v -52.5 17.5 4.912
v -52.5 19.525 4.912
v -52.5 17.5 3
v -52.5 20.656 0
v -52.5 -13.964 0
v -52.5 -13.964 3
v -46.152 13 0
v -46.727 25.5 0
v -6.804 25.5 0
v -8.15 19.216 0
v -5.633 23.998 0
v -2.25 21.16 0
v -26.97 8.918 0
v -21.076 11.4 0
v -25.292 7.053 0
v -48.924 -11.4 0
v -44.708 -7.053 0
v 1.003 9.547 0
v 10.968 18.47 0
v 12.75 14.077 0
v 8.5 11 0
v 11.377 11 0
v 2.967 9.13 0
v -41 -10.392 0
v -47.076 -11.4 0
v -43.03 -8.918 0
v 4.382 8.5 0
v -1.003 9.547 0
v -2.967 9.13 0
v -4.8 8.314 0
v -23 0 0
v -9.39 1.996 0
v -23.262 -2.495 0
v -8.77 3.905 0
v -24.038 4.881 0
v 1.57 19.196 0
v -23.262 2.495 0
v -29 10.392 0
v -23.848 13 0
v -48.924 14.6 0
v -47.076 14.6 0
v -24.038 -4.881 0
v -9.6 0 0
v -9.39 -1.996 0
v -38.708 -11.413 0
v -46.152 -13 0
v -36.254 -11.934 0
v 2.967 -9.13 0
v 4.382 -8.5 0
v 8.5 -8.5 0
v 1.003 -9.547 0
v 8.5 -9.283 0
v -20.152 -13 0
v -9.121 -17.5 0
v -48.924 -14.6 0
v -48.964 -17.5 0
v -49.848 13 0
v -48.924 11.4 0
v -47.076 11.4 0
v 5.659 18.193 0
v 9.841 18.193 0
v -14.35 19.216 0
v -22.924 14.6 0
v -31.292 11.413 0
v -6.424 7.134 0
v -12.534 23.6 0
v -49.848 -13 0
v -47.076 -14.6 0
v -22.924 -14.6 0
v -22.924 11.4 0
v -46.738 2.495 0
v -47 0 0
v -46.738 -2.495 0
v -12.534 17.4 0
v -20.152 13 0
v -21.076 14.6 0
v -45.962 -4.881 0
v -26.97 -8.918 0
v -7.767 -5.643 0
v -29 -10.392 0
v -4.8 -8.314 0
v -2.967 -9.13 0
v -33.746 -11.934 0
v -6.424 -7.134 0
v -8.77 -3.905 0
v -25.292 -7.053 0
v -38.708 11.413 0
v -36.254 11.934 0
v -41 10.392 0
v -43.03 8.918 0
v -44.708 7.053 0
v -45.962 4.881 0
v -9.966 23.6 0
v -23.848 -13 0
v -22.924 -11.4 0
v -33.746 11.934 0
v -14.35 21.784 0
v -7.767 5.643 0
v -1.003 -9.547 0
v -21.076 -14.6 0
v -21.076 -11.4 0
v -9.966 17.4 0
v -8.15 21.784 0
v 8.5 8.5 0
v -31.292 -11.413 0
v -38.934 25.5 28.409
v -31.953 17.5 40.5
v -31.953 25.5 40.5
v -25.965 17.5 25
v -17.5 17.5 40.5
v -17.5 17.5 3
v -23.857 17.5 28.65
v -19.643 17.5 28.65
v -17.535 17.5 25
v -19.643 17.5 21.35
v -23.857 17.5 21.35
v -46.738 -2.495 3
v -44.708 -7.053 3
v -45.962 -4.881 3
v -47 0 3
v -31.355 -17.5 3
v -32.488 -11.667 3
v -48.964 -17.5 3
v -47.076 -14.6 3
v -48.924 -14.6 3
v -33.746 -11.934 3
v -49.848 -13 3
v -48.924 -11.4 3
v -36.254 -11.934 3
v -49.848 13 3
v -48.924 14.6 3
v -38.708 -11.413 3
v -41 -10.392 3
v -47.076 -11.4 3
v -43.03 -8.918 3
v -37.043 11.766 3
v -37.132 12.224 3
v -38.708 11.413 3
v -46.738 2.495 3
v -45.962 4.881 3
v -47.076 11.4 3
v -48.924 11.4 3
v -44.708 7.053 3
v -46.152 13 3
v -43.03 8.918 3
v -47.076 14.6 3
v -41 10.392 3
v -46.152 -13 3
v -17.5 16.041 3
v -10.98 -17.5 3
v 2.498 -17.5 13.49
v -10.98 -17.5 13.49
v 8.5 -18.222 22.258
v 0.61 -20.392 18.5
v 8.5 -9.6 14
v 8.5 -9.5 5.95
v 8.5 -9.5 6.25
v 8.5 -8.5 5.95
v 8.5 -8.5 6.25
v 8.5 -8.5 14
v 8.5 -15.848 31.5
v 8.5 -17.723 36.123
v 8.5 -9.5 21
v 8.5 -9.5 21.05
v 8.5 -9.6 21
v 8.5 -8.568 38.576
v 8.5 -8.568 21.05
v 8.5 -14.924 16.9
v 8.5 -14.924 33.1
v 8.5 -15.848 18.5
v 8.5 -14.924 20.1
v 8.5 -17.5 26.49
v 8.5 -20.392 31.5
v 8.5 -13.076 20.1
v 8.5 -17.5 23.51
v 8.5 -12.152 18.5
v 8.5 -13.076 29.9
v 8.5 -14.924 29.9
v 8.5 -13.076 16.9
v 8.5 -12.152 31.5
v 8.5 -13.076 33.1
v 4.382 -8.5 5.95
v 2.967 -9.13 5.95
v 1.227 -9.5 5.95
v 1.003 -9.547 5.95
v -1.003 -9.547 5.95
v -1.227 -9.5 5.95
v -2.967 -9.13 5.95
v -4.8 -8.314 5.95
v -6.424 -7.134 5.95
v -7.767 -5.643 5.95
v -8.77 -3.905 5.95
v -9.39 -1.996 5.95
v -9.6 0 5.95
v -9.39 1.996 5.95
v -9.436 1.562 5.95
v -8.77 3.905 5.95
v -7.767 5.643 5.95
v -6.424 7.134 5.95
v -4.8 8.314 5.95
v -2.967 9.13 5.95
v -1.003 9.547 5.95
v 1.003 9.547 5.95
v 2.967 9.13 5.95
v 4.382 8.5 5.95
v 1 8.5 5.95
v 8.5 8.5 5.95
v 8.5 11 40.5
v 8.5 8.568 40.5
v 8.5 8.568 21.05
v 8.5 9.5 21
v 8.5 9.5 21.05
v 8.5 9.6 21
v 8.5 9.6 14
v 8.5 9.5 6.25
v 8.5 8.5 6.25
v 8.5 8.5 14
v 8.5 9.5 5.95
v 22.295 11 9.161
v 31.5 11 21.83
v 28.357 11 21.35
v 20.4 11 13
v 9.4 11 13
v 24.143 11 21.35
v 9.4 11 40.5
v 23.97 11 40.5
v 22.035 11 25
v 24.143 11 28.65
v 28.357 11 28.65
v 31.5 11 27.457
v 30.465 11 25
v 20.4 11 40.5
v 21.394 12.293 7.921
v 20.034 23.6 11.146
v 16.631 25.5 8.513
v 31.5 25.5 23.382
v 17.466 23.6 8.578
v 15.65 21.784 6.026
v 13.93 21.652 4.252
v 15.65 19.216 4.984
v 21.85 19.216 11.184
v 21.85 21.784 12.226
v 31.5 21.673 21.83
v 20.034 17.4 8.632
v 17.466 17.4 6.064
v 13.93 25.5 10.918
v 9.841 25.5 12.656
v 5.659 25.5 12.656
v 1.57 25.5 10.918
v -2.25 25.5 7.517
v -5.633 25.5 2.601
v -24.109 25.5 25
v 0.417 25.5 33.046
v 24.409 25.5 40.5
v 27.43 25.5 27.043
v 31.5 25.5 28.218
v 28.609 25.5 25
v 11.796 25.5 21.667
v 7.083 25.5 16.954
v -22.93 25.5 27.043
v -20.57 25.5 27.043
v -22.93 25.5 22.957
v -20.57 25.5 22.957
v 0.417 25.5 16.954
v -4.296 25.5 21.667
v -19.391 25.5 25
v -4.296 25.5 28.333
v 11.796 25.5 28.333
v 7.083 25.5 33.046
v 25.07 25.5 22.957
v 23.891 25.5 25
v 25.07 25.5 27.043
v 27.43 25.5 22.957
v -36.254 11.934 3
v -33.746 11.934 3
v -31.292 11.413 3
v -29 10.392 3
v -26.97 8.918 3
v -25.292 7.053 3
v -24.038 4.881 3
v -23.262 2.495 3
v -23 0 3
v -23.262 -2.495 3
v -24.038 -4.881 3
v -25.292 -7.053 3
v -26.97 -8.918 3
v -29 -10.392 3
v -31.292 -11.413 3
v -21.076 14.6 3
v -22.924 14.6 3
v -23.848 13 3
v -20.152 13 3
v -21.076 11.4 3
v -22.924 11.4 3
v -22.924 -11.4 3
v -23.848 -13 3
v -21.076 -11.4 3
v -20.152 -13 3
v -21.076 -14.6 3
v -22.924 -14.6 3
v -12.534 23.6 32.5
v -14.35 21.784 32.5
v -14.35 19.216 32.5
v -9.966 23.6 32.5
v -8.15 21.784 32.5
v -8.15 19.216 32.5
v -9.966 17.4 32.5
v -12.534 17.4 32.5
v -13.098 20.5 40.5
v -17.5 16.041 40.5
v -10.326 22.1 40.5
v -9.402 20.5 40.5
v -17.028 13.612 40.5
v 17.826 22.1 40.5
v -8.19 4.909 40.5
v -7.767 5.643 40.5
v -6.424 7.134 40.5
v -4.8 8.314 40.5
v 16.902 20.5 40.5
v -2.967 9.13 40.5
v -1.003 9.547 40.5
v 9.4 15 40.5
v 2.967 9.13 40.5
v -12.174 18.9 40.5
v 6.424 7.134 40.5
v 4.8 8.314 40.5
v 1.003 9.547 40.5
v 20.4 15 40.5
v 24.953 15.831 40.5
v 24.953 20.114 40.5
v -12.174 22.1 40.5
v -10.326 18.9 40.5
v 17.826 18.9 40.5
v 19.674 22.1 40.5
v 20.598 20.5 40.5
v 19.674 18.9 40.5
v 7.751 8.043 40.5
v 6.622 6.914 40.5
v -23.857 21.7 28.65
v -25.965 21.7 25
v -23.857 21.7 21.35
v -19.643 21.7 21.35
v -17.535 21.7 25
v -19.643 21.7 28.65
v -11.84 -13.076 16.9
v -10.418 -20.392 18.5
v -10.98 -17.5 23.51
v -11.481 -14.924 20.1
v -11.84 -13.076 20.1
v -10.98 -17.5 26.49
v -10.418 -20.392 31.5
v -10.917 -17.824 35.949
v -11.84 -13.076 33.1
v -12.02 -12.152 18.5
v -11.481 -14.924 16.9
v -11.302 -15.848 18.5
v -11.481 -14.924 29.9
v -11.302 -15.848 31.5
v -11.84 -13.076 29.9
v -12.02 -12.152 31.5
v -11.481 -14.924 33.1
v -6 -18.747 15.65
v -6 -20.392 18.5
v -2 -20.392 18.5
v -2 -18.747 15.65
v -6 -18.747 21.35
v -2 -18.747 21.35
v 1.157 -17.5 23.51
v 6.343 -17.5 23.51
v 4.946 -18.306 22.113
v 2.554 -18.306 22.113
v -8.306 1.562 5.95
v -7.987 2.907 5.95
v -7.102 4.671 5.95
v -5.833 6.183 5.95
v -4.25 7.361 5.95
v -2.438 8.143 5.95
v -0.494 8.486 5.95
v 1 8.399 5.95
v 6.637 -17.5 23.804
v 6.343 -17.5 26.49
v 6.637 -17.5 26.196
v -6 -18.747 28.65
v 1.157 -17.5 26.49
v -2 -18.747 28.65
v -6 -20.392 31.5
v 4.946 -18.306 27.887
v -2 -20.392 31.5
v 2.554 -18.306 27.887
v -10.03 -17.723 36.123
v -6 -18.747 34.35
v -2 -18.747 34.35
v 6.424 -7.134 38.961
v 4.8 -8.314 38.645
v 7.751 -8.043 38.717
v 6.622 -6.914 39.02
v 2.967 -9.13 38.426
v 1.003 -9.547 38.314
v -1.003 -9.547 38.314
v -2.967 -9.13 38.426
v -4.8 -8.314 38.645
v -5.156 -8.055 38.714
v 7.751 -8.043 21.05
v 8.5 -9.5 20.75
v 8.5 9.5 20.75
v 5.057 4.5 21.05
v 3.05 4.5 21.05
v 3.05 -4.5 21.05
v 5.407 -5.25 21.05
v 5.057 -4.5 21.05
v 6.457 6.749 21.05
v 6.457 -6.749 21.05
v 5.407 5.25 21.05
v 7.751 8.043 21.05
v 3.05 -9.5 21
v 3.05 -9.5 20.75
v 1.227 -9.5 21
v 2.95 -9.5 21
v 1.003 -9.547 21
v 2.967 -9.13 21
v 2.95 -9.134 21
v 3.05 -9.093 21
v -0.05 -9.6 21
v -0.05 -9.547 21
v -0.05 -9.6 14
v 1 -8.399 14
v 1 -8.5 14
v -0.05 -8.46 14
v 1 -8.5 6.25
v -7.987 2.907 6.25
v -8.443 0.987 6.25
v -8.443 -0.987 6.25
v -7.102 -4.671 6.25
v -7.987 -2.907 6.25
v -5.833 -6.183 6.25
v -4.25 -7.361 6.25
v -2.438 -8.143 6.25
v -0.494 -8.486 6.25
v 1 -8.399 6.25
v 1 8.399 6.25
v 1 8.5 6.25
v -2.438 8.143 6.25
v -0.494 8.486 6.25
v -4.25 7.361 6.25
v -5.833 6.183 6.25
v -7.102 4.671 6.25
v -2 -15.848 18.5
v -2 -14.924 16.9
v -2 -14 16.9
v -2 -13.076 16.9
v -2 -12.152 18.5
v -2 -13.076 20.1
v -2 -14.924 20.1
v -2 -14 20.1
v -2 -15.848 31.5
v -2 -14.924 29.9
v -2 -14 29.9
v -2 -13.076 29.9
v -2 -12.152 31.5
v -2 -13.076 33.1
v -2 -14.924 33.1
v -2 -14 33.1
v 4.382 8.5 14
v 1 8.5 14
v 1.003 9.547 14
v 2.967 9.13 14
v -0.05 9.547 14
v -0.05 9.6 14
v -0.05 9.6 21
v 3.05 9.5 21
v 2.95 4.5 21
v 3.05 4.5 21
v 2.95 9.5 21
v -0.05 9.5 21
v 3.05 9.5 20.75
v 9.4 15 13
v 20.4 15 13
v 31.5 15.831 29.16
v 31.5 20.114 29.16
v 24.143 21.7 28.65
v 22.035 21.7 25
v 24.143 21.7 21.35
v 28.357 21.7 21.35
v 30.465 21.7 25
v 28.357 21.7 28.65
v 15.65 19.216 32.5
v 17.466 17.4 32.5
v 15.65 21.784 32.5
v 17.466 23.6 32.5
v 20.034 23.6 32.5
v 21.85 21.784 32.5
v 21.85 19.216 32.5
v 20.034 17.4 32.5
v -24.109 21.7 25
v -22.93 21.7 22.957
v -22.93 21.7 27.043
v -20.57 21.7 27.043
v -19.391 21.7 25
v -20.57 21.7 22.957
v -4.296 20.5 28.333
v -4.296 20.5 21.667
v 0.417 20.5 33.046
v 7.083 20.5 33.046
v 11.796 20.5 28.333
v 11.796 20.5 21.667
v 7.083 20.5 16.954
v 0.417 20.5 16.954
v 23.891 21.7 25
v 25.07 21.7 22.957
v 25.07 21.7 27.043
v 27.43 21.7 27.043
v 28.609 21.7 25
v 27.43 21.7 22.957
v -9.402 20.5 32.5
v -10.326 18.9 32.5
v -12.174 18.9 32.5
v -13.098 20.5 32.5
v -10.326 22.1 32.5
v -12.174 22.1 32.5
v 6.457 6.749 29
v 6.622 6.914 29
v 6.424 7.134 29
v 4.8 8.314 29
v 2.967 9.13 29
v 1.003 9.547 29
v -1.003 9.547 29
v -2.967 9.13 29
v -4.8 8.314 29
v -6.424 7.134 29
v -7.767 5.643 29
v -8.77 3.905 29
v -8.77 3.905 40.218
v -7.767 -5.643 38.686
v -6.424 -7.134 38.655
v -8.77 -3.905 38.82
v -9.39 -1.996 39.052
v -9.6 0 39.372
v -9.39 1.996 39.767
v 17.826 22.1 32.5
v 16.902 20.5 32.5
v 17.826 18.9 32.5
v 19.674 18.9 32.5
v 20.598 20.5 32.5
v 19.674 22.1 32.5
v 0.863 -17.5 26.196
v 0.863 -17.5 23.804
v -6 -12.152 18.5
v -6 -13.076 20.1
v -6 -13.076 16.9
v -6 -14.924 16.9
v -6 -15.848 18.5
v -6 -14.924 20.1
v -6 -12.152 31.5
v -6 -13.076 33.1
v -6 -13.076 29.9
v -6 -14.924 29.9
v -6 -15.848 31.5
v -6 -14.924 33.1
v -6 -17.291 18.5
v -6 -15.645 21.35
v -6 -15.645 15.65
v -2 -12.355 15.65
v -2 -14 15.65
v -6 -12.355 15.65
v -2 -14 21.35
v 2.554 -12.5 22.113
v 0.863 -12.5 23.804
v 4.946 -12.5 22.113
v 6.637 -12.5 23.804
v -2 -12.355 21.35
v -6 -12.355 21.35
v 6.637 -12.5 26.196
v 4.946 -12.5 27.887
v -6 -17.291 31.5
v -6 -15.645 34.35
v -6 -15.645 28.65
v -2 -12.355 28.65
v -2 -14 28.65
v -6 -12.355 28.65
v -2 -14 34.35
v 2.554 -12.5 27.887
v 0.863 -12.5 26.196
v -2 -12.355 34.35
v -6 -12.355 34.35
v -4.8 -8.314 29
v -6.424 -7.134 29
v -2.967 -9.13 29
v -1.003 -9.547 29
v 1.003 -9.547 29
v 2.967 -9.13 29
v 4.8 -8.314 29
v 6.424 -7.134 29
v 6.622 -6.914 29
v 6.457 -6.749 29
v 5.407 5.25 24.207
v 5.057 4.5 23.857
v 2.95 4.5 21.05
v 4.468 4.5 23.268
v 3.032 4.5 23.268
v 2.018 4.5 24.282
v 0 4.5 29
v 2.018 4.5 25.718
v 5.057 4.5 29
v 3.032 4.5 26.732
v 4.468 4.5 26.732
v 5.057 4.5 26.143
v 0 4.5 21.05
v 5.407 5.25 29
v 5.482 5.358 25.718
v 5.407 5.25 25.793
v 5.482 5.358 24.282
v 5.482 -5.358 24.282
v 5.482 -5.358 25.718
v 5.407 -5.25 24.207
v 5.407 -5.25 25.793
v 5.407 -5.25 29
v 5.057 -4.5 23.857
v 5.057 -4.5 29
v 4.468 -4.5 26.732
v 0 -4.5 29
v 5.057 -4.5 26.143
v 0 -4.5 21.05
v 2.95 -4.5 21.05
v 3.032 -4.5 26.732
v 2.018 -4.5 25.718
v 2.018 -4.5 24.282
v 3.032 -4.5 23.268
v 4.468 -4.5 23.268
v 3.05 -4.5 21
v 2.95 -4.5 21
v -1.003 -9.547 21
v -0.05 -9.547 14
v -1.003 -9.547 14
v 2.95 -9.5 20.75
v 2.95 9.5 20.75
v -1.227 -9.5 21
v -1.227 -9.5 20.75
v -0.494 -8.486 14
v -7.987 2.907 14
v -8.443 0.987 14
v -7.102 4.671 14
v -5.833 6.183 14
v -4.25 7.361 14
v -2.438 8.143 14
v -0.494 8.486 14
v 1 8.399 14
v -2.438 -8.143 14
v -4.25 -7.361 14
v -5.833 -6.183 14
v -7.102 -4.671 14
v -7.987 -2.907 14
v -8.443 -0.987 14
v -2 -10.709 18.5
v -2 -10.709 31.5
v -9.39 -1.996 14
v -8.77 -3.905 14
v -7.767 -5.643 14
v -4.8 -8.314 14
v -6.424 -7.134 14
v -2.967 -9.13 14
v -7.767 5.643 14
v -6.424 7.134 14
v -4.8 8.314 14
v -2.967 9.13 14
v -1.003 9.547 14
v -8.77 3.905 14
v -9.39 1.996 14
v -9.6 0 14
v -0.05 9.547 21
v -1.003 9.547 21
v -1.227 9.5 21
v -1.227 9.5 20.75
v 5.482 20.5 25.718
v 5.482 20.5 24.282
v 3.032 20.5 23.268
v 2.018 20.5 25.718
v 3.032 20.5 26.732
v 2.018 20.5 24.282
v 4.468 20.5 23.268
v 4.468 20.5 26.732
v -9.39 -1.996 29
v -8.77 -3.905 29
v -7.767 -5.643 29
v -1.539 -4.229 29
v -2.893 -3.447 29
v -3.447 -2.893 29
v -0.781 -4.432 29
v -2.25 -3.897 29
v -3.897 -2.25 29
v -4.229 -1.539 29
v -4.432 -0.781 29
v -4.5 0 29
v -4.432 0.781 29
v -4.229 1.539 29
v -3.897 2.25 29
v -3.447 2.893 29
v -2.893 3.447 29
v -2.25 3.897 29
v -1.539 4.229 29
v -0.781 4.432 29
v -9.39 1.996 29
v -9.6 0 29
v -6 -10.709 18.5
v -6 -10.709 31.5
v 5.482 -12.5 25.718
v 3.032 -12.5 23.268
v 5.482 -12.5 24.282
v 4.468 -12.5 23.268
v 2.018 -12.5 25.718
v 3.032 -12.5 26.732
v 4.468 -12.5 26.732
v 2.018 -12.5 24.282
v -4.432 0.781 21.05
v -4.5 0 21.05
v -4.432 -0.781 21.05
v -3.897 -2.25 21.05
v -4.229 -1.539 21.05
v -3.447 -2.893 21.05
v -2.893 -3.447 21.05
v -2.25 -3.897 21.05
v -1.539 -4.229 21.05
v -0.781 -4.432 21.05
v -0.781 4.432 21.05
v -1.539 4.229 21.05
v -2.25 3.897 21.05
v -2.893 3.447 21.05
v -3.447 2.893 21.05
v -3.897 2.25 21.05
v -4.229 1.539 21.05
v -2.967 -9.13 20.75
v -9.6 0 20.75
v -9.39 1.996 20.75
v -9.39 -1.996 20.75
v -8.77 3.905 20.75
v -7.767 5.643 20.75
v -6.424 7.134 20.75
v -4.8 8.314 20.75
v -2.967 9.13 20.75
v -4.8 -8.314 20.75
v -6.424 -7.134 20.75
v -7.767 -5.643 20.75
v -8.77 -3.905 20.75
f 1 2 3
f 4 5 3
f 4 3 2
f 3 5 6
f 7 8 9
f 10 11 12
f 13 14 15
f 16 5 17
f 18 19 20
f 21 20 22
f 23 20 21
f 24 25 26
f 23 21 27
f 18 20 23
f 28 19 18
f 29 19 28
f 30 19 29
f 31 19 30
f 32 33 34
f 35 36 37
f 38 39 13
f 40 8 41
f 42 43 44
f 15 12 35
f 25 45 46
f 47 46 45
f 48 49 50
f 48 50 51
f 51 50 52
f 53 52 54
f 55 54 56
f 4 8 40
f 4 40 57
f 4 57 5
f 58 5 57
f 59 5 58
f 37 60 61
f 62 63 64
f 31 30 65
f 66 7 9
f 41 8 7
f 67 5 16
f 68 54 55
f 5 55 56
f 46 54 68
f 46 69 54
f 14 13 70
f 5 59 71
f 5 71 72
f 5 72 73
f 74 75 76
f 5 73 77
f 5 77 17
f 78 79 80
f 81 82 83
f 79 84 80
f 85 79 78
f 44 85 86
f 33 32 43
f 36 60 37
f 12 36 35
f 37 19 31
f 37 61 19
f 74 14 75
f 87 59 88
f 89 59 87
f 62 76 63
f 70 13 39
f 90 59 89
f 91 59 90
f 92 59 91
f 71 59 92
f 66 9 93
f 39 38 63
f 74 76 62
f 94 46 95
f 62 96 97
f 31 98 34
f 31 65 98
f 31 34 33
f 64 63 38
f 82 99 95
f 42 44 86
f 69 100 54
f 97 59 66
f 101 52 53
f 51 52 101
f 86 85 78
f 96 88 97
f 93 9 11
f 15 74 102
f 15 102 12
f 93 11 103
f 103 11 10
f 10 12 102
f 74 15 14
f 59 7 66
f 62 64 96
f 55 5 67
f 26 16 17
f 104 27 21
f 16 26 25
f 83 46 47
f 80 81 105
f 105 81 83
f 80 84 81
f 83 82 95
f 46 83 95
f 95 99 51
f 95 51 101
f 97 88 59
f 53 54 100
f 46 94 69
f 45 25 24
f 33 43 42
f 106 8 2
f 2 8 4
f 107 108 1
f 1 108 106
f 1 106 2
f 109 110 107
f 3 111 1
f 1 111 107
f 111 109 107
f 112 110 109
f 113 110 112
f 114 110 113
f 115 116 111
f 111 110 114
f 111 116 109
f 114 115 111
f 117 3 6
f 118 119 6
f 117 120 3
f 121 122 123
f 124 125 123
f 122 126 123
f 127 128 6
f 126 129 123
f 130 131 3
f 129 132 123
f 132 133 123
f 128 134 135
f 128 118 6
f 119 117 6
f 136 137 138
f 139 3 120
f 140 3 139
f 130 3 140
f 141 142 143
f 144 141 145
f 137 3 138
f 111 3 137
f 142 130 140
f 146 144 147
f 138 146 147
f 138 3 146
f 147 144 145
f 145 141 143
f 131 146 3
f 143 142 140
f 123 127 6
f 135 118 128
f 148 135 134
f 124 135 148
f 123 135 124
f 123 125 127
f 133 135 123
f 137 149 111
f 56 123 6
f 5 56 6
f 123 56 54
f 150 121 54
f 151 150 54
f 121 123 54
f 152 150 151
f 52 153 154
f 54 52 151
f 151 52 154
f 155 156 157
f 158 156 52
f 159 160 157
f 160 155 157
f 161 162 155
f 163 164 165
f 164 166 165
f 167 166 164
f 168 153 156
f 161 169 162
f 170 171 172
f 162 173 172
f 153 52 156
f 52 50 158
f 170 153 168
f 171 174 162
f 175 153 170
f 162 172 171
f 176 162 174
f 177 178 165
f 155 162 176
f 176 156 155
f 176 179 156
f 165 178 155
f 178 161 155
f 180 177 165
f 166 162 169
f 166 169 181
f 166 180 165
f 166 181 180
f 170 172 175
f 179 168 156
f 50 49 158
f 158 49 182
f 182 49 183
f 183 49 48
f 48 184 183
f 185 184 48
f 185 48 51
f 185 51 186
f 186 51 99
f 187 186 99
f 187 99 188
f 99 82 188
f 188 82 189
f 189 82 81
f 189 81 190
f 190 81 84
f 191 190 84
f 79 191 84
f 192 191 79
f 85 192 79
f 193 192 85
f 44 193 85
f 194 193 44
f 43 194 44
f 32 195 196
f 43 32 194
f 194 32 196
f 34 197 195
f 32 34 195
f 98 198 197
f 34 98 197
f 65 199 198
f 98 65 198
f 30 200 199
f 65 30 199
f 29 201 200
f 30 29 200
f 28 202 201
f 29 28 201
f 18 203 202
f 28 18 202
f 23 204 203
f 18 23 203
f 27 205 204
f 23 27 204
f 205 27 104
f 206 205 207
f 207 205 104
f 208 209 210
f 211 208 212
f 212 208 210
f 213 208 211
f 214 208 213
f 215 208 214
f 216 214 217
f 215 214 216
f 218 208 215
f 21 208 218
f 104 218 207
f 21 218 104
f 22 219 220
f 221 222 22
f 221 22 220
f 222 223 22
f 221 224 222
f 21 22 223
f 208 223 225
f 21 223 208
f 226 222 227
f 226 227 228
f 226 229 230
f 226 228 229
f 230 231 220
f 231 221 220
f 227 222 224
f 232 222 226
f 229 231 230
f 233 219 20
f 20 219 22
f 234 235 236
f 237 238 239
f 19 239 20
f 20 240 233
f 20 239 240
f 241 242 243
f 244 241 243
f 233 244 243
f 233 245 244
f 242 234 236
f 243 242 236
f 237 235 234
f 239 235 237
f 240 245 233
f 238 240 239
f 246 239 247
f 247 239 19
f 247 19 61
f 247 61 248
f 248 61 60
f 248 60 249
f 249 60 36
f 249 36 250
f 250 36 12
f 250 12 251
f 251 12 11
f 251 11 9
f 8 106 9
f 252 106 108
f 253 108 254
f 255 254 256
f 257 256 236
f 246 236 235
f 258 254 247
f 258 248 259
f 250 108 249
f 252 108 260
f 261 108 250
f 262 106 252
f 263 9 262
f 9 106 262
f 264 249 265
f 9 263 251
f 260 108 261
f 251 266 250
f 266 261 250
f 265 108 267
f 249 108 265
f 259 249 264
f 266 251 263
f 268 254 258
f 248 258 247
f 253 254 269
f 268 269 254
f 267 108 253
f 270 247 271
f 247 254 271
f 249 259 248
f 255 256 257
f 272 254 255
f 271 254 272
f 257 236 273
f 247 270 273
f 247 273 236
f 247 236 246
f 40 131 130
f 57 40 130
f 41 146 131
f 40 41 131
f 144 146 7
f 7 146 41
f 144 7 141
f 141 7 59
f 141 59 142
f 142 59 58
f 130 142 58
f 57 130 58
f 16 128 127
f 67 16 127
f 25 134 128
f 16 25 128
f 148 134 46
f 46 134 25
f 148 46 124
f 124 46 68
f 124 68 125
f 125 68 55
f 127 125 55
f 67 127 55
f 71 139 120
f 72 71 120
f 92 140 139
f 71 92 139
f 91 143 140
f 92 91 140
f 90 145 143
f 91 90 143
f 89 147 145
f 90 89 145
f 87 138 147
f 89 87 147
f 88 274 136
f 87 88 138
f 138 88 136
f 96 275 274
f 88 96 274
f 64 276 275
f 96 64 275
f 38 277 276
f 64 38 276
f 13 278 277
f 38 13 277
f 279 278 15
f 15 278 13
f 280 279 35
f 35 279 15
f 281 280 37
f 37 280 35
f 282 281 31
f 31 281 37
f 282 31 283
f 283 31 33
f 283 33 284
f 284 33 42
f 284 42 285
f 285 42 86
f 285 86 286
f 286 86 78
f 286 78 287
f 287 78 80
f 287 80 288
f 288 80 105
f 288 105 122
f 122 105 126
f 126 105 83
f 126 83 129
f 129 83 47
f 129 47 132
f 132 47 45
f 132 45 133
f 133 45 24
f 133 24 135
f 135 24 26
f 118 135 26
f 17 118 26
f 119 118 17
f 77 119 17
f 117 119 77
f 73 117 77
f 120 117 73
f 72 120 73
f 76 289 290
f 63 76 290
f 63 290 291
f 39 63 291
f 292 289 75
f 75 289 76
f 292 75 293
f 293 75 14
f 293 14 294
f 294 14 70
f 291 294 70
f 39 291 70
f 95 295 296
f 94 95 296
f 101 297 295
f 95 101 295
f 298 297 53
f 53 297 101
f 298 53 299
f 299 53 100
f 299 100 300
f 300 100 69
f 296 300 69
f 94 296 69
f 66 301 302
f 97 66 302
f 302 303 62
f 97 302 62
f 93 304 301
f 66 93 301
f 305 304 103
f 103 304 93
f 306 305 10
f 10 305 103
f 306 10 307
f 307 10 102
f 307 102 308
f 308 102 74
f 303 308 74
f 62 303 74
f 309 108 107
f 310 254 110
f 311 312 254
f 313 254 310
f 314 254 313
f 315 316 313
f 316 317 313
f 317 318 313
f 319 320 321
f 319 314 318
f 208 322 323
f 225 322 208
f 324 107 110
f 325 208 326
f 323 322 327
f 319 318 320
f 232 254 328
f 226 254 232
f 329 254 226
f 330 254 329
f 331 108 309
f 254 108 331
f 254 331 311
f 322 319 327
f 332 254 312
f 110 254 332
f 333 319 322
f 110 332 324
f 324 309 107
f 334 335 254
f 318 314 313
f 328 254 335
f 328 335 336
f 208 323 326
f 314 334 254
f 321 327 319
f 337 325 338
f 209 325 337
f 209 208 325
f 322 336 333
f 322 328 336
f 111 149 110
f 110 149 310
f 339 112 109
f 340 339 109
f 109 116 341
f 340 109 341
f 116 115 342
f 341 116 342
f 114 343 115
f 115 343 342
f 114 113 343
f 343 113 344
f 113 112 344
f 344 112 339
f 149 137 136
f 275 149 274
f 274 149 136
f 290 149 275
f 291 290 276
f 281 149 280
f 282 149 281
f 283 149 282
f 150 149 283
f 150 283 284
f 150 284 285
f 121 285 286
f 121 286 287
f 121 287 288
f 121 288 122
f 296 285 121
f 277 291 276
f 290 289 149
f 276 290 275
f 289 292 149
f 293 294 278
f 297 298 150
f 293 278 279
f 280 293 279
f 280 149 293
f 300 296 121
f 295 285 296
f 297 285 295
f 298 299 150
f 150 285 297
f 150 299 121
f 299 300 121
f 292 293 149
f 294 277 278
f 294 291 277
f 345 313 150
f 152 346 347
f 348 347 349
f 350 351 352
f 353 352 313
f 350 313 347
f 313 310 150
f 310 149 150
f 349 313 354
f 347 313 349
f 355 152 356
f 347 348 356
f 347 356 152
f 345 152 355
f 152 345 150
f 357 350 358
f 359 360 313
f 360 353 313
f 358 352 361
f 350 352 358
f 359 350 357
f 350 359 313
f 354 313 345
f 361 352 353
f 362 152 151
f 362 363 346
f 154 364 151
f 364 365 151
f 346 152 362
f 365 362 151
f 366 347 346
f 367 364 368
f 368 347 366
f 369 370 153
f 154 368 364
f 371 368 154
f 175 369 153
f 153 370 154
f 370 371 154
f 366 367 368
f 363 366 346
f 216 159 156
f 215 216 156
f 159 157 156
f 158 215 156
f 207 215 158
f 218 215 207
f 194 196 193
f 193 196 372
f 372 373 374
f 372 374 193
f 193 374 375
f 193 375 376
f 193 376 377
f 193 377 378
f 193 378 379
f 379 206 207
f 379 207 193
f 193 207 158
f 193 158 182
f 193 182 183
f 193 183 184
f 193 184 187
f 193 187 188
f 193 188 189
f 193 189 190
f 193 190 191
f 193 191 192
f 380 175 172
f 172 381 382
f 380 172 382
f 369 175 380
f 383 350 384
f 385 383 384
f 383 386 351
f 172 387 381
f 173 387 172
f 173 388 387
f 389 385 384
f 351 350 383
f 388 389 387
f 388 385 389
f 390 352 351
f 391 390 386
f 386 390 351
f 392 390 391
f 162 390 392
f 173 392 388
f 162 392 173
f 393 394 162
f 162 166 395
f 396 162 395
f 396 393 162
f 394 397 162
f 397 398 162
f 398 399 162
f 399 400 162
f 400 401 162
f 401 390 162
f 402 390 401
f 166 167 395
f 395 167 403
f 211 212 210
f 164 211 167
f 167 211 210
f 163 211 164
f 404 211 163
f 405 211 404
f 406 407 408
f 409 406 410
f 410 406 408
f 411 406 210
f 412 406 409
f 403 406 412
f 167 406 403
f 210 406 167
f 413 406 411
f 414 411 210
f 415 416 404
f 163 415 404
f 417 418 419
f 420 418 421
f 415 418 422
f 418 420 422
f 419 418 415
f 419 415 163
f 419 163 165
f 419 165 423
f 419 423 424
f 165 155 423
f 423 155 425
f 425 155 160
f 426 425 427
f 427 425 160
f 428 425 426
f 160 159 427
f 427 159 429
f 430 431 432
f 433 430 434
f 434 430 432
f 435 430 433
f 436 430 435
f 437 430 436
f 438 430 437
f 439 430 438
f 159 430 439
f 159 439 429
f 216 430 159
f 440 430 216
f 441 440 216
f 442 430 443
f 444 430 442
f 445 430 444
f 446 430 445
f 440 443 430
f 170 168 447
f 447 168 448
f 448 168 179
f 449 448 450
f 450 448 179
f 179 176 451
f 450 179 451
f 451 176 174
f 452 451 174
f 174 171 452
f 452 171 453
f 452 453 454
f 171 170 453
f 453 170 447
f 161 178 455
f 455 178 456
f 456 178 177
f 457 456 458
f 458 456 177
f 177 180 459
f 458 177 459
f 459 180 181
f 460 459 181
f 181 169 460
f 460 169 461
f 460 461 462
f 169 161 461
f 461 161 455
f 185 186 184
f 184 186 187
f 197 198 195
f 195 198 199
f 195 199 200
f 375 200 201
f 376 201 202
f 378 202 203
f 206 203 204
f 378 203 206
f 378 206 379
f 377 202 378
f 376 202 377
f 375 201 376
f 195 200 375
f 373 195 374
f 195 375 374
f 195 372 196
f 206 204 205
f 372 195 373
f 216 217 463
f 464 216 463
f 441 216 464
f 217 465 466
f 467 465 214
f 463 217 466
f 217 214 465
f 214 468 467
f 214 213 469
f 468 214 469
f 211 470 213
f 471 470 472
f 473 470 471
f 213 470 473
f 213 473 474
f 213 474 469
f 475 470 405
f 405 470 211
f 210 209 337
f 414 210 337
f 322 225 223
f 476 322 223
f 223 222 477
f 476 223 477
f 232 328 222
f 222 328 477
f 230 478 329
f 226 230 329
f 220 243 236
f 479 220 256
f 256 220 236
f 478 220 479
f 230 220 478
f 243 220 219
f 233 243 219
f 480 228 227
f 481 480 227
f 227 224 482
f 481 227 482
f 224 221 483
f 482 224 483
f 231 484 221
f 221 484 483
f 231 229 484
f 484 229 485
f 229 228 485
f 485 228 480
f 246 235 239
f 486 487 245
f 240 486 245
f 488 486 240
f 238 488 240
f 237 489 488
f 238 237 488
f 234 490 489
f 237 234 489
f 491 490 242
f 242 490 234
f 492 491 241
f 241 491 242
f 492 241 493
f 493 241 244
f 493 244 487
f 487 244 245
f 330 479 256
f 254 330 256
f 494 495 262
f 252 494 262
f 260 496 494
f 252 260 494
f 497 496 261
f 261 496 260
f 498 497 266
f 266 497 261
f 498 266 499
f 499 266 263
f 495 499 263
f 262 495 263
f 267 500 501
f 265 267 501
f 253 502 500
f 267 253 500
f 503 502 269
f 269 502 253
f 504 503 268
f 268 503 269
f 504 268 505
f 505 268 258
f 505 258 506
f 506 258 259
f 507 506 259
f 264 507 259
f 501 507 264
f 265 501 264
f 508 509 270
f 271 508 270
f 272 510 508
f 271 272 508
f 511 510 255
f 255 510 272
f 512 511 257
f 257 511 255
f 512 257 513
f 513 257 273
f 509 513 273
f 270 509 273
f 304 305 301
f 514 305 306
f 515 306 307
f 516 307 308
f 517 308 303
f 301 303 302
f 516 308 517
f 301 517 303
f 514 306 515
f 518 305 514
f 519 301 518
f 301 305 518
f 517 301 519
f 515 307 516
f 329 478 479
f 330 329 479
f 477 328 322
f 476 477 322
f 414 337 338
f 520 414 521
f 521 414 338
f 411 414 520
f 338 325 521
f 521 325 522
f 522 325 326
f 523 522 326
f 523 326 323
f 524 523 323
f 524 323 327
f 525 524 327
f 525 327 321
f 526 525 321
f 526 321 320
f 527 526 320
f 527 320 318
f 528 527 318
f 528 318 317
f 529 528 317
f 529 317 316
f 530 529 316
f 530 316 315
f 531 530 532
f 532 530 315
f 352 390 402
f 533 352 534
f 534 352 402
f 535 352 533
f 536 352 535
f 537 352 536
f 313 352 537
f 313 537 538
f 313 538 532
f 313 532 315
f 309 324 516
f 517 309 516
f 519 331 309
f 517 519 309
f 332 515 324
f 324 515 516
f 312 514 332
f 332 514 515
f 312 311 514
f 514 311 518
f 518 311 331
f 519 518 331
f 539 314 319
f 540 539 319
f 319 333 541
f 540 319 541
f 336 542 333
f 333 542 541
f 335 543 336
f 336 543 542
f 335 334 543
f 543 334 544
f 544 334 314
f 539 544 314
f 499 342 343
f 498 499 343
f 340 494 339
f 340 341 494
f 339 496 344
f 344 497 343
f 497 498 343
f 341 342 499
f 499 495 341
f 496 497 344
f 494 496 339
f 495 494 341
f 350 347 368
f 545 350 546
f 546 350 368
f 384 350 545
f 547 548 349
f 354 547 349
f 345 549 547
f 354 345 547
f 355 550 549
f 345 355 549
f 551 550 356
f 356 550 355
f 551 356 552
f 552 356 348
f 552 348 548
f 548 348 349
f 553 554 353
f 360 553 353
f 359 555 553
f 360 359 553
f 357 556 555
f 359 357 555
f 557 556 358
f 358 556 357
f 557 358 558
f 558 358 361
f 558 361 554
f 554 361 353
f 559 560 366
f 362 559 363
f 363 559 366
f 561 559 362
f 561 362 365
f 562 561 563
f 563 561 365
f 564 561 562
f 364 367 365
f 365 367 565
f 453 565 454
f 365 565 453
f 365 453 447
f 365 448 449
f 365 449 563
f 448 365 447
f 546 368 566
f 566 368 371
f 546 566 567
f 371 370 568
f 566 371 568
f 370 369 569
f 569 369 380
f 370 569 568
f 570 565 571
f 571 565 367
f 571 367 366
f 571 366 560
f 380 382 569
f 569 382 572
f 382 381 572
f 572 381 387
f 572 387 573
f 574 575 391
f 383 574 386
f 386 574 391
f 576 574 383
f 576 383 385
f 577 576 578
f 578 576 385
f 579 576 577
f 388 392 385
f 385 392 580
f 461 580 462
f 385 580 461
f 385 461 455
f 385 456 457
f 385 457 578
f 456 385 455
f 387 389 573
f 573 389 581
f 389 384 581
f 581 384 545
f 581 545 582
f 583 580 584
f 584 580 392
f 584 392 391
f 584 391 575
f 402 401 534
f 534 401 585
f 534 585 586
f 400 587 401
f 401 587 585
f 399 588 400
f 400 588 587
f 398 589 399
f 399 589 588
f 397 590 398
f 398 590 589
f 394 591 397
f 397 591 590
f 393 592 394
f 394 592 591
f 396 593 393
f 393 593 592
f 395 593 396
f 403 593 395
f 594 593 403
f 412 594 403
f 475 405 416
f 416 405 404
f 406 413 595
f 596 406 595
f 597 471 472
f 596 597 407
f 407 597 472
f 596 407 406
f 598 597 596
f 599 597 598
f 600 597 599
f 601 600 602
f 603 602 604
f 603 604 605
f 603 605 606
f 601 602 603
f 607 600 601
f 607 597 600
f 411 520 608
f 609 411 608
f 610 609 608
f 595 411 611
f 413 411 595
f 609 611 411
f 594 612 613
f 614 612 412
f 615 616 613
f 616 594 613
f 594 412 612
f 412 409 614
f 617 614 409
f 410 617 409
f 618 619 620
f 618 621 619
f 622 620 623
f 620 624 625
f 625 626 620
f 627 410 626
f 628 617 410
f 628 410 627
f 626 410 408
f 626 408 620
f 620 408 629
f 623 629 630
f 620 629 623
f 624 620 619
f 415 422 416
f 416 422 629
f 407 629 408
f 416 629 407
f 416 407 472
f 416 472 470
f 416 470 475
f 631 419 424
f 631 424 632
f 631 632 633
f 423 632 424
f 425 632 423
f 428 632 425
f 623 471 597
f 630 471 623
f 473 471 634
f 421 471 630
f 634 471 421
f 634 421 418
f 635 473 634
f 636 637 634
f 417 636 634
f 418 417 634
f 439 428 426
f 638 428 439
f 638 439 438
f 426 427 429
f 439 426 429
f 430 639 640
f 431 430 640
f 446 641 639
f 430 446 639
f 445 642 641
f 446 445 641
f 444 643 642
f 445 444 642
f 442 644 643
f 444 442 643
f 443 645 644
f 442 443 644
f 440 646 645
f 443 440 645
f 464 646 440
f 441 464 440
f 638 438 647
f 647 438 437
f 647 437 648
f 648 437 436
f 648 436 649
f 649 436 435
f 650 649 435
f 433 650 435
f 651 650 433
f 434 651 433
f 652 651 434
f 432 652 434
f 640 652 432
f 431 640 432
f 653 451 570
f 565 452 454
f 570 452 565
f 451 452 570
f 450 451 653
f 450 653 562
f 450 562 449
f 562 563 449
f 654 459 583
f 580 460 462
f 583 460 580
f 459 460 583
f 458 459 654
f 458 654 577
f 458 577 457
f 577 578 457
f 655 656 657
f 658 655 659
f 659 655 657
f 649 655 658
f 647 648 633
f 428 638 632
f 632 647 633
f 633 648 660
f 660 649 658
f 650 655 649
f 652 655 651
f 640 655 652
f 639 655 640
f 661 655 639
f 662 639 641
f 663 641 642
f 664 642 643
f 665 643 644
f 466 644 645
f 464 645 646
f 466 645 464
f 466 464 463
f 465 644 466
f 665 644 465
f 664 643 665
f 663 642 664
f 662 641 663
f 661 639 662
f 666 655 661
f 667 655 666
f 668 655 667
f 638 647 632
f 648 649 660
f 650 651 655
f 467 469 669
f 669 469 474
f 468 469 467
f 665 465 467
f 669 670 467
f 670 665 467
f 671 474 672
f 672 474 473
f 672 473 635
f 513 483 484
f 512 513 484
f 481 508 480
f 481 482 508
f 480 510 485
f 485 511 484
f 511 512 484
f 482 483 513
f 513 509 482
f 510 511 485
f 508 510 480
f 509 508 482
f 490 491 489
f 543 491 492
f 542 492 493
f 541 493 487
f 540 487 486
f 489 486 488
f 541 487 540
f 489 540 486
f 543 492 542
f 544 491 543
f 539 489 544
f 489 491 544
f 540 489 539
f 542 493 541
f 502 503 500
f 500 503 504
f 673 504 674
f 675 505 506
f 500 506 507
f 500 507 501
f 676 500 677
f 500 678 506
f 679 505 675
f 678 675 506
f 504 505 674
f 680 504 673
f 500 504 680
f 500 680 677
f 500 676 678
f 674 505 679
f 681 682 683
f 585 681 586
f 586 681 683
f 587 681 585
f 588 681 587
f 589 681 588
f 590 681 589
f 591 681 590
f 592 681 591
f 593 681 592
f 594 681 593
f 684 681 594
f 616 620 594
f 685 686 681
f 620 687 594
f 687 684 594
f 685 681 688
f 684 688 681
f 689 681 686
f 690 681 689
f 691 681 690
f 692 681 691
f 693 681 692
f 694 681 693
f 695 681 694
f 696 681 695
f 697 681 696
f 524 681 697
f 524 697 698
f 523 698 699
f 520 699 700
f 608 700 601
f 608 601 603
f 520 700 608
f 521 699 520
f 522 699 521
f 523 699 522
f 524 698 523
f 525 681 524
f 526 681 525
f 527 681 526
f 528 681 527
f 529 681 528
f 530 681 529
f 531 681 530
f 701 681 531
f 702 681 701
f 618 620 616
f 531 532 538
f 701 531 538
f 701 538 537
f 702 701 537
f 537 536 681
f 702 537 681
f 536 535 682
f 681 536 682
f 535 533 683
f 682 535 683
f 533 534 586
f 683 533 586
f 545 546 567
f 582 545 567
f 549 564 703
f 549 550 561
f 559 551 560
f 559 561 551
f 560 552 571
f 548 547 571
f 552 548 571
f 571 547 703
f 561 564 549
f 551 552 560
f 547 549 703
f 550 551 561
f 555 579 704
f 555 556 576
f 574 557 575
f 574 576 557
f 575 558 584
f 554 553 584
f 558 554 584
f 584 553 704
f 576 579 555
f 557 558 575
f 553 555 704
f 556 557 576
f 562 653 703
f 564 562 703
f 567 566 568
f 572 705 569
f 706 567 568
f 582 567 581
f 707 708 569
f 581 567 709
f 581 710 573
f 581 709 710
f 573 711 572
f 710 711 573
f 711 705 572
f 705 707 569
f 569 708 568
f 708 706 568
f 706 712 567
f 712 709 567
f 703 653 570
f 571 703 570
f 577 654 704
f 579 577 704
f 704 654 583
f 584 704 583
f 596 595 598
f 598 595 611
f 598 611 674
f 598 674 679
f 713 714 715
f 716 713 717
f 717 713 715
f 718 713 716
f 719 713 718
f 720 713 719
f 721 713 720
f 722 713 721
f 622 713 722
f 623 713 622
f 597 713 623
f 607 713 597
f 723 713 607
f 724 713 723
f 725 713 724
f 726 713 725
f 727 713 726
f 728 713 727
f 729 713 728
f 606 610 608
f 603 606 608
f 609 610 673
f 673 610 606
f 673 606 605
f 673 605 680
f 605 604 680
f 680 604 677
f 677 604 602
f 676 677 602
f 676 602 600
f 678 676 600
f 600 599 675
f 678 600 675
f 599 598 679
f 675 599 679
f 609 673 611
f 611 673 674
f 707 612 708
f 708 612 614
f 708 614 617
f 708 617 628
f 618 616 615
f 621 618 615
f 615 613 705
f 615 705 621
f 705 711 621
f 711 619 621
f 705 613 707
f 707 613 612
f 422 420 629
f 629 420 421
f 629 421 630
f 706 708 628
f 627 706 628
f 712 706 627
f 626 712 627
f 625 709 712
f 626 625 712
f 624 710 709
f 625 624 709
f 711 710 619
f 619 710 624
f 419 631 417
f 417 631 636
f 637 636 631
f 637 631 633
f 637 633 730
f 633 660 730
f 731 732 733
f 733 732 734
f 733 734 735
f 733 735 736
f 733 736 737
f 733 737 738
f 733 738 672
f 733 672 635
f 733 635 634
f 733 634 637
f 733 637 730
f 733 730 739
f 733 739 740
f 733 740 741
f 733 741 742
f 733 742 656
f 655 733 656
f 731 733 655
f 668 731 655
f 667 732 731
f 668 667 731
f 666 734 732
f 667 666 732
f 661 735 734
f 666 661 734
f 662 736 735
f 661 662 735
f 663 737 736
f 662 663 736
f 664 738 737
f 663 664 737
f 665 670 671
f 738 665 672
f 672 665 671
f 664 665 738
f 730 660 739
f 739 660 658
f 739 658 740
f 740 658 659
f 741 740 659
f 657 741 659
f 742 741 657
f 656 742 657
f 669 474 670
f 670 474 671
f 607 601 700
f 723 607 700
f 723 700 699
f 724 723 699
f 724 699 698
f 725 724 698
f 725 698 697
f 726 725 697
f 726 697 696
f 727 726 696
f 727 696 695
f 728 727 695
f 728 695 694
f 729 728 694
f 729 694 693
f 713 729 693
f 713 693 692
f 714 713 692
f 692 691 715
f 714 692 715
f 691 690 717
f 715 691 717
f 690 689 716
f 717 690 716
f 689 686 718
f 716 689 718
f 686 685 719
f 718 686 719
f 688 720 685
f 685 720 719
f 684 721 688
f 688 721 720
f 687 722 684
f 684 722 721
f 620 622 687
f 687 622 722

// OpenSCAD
// file: inc/spur_generator.scad
// Copyright 2011 Cliff L. Biffle.
// This file is licensed Creative Commons Attribution-ShareAlike 3.0.
// http://creativecommons.org/licenses/by-sa/3.0/

// You can get this file from http://www.thingiverse.com/thing:3575
use <parametric_involute_gear_v5.0.scad>

// Couple handy arithmetic shortcuts
function sqr(n) = pow(n, 2);
function cube(n) = pow(n, 3);

// This was derived as follows:
// In Greg Frost's original script, the outer radius of a spur
// gear can be computed as...
function gear_outer_radius(number_of_teeth, circular_pitch) =
  (sqr(number_of_teeth) * sqr(circular_pitch) + 64800)
    / (360 * number_of_teeth * circular_pitch);

// We can fit gears to the spacing by working it backwards.
//  spacing = gear_outer_radius(teeth1, cp)
//          + gear_outer_radius(teeth2, cp);
//
// I plugged this into an algebra system, assuming that spacing,
// teeth1, and teeth2 are given.  By solving for circular pitch,
// we get this terrifying equation:
function fit_spur_gears(n1, n2, spacing) =
  (180 * spacing * n1 * n2  +  180
    * sqrt(-(2*n1*cube(n2)-(sqr(spacing)-4)*sqr(n1)*sqr(n2)+2*cube(n1)*n2)))
  / (n1*sqr(n2) + sqr(n1)*n2);
// file: inc/nema.scad
motor_side = 35;
motor_height = 36.5;
motor_shaft_length = 19;
motor_short_shaft_length = 10;
motor_shoulder_height = 2;
motor_shoulder_diam = 22;

module nema14() {
  cube([motor_side,motor_side,motor_height],center=true);

  // shaft
  translate([0,0,motor_height/2+motor_shaft_length/2+motor_shoulder_height])
    cylinder(r=5/2,h=motor_shaft_length,center=true);

  // shoulder
  translate([0,0,motor_height/2+motor_shoulder_height/2])
    cylinder(r=motor_shoulder_diam/2,h=motor_shoulder_height,center=true); // shoulder

  // short shaft
  translate([0,0,-motor_height/2-motor_short_shaft_length/2])
    cylinder(r=5/2,h=motor_short_shaft_length,center=true);
}

//nema14();
// file: gears.scad
da6 = 1 / cos(180 / 6) / 2;

// Copyright 2011 Cliff L. Biffle.
// This file is licensed Creative Commons Attribution-ShareAlike 3.0.
// http://creativecommons.org/licenses/by-sa/3.0/

// You can get this file from http://www.thingiverse.com/thing:3575
use <inc/parametric_involute_gear_v5.0.scad>
use <inc/nema.scad>
use <inc/spur_generator.scad>

// Here's an example.
large_tooth_num = 43;
small_tooth_num = 9;
gear_dist = 35;
// printed 51 and 9
// 7 and 41
// 9 and 41
// 11 and 49
gear_pitch = fit_spur_gears(large_tooth_num, small_tooth_num, gear_dist);

small_tooth_height = 7;
small_gear_height  = 15;

module large_gear() {
  difference() {
    // Simple Test:
    gear (circular_pitch=gear_pitch,
      //gear_thickness = 12,
      gear_thickness = 3.5,
      //rim_thickness = 15,
      rim_thickness = 5.5,
      rim_width = 1,
      //hub_thickness = 17,
      hub_thickness = 10,
      hub_diameter = 15,
      number_of_teeth = large_tooth_num,
      circles=4,
      bore_diameter = 0);
    cylinder(r=6/2,$fn=36,h=50,center=true);
    translate([0,0,10]) {
      cylinder(r=da6*10,h=10,center=true,$fn=6); // nut trap for m6 nut
    }
  }
}

module small_gear() {
  difference() {
    gear (circular_pitch=gear_pitch,
      gear_thickness = small_tooth_height,
      rim_thickness = small_tooth_height,
      hub_thickness = small_gear_height,
      circles=0,
      number_of_teeth = small_tooth_num,
      rim_width = 2,
      bore_diameter = 0,
      hub_diameter = 15);

    // flatted motor hole
    difference() {
      cylinder(r=5.1/2,$fn=36,h=90,center=true);
      translate([4.6,0,0]) cube([5,5,100],center=true);
    }

    // m3 set screw
    // m3 nut == 5.5mm * 3mm
    translate([3.05,0,small_gear_height-3.5]) {
      rotate([0,90,0]) cylinder(r=5.5*da6,h=3,$fn=6,center=true);
      translate([0,0,2.1]) cube([3,5.5,3],center=true);
      rotate([90,0,0]) rotate([0,90,0]) cylinder(r=3*da6,h=9,$fn=6,center=true);
    }
  }
}
// main file
da6 = 1 / cos(180 / 6) / 2;
da8 = 1 / cos(180 / 8) / 2;

// motor mount plate too thin for 8mm screws (thickness is 3, looks to be short by <1mm)
// Get rid of hotend mount plate recess, or make it more shallow? -- This would let the mount plate screw holes be more sturdy
// hotend recess diameter too large (somehow 16*da8 comes out more like 17; but it might be a good thing -- turns out it was a human problem)

include <gears.scad>
include <inc/nema.scad>

// 625
bearing_height = 5;
bearing_outer  = 16;
bearing_inner  = 5;

// 626
bearing_height = 6;
bearing_outer  = 19;
bearing_inner  = 6;

ext_shaft_length  = 60;
ext_shaft_diam    = 5; // m5 threaded rod
ext_shaft_diam    = 6; // m6 bolt
ext_shaft_opening = bearing_outer - 3;
ext_shaft_opening = ext_shaft_diam + 3;

carriage_hole_spacing = 30;

motor_screw_spacing = 26;

hotend_length = 63;
hotend_diam   = 16;
hotend_mount_hole_depth = 5;
hotend_mount_screw_hole_spacing = 24;
hotend_mount_screw_diam = 4;
hotend_mount_length = 37.5*2;
hotend_mount_width = 28;
hotend_mount_height = 0;

mount_plate_thickness = 3;
bottom_thickness = 8;
body_bottom_pos = -motor_side/2-bottom_thickness;
total_depth = mount_plate_thickness + motor_height + 1;
total_width = motor_side + motor_side*1.4;
total_height = motor_side + bottom_thickness;

filament_from_carriage = hotend_diam / 2 + 7.5; // make sure the hotend can clear the carriage
filament_x = ext_shaft_diam/2 + 3/2 - .75;
filament_y = total_depth - filament_from_carriage;

module assembly() {
  //gear_assembly();
  translate([0,0,0]) extruder_body();

  // motor
  % translate([-gear_dist,21.25,0]) rotate([90,0,0]) nema14();

  // extruder shaft
  % translate([0,ext_shaft_length/2-15,0]) rotate([90,0,0]) rotate([0,0,22.5])
    cylinder(r=ext_shaft_diam/2,h=ext_shaft_length,$fn=8,center=true);

  // filament
  % translate([filament_x,filament_y,0]) cylinder(r=3/2,h=60,$fn=6,center=true);

  // hotend
  % translate([filament_x,filament_y,body_bottom_pos-hotend_length/2+hotend_mount_hole_depth])
    cylinder(r=hotend_diam/2,h=hotend_length,center=true);
}

module bearing() {
  difference() {
    cylinder(r=bearing_outer/2,h=bearing_height,center=true);
    cylinder(r=bearing_inner/2,h=bearing_height+0.05,center=true);
  }
}

module gear_assembly() {
  translate([0,-2.5,0]) rotate([90,0,0]) large_gear();

  translate([-1 * gear_dist,-2,0]) {
    rotate([90,0,0]) small_gear();
  }
}

module extruder_body() {
  difference() {
    extruder_body_base();
    extruder_body_holes();
  }
  extruder_bridges();
}

module extruder_body_base() {
  // motor plate
  translate([-motor_side*0.3,mount_plate_thickness/2,0])
    cube([total_width,mount_plate_thickness,motor_side],center=true);

  // main block
  translate([motor_side*0.2,total_depth/2+mount_plate_thickness/2,0])
    cube([motor_side*1.4,total_depth-mount_plate_thickness,motor_side],center=true);

  // bottom
  translate([-motor_side*0.3,total_depth/2,body_bottom_pos+bottom_thickness/2])
    cube([total_width,total_depth,bottom_thickness],center=true);

  translate([filament_x,filament_y,idler_screw_from_shaft-4]) {
    for (side=[-1,1]) {
      translate([0,(idler_screw_spacing/2)*side,0]) rotate([0,90,0]) cylinder(r=18*da6,h=45,$fn=6,center=true);
    }
  }
}

//625
idler_bearing_height = bearing_height;
idler_bearing_outer  = bearing_outer;
idler_bearing_inner  = bearing_inner;

// 608
idler_bearing_height = 7;
idler_bearing_outer  = 22;
idler_bearing_inner  = 8;

//626
idler_bearing_height = 6;
idler_bearing_outer  = 19;
idler_bearing_inner  = 6;

idler_width     = idler_bearing_height+14;
idler_thickness = idler_bearing_inner+3+1;
idler_length    = idler_bearing_outer+16;
idler_shaft_diam = idler_bearing_inner;
idler_shaft_length = idler_width*2;
idler_x = filament_x + idler_bearing_outer/2 + 2.15;

idler_screw_spacing = (idler_width - idler_bearing_height -1);
idler_screw_from_shaft = 14;

idler_crevice_width = idler_thickness + 1;
idler_crevice_length = total_depth - (filament_y - idler_width/2) + 2;
idler_crevice_depth = 9;
idler_crevice_x = idler_x - 0.5;
idler_crevice_y = total_depth - idler_crevice_length / 2;

module idler_bearing() {
  difference() {
    cylinder(r=idler_bearing_outer/2,h=idler_bearing_height,center=true);
    cylinder(r=idler_bearing_inner/2,h=idler_bearing_height*2,center=true);
  }
}

module idler() {
  difference() {
    translate([0,0,2]) cube([idler_thickness,idler_width,idler_length],center=true);

    // holes for screws
    for(side=[-1,1]) {
      translate([-idler_thickness/2,idler_screw_spacing/2*side,idler_screw_from_shaft]) {
        rotate([0,0,0]) rotate([0,90,0]) cylinder(r=3.2/2,h=idler_thickness*3,$fn=36,center=true);
      }
    }

    translate([-1,0,0]) {
      rotate([90,0,0]) rotate([0,0,22.5]) cylinder(r=da8*(idler_shaft_diam),h=idler_shaft_length,$fn=8,center=true);
      //translate([-idler_thickness/2,0,0]) cube([idler_thickness,idler_shaft_length,idler_shaft_diam],center=true);

      // hole for bearing
      cube([idler_bearing_outer,idler_bearing_height+1,idler_bearing_outer+2],center=true);

      // idler bearing
      % rotate([90,0,0]) idler_bearing();
    }
  }
}

translate([filament_x + idler_bearing_outer/2 + 2,filament_y,0]) {
  //idler();
}

module extruder_body_holes() {
  // shaft hole
  translate([0,0,0]) rotate([90,0,0]) cylinder(r=ext_shaft_opening/2,h=100,$fn=36,center=true);
  translate([bearing_outer/2,motor_height/2,0]) cube([bearing_outer,motor_height*2,ext_shaft_opening],center=true);

  // large opening
  translate([motor_side/2+bearing_outer/2-1,motor_height/2,motor_side/2-ext_shaft_opening-2])
    cube([motor_side,motor_height*2,motor_side],center=true);

  // filament path
  translate([filament_x,filament_y,0]) rotate([0,0,22.5]) cylinder(r=3.75/2,$fn=8,h=50,center=true);

  translate([0,bearing_height/2,0]) {
    translate([0,-0.05,0]) {
      // gear-side bearing
      rotate([90,0,0]) cylinder(r=bearing_outer/2+0.1,h=bearing_height,center=true);

      // round the sharp corner from the gear-side bearing
      //translate([11,0,0]) rotate([90,0,0]) rotate([0,0,22.5]) cylinder(r=10.8,$fn=8,h=bearing_height,center=true);
    }

    % translate([0,0,0]) rotate([90,0,0]) bearing();
  }


  // gear-side filament support bearing
  translate([0,filament_y-bearing_height-1.5,0]) {
    rotate([90,0,0])
      cylinder(r=bearing_outer/2+0.1,h=bearing_height+1,center=true);
    % rotate([90,0,0]) bearing();
  }
  translate([0,bearing_height,0]) {
    rotate([90,0,0])
      cylinder(r=bearing_outer/2-1,h=20,center=true);
    translate([bearing_outer/2,0,0]) cube([bearing_outer-2,20,bearing_outer-2],center=true);
  }

  translate([bearing_outer*.25,filament_y-bearing_height-1.5,0])
    cube([bearing_outer/2+0.1,bearing_height+1,bearing_outer+0.2],center=true);

  // idler bearing access
  translate([bearing_outer/2+2+ext_shaft_diam/2,filament_y+bearing_height-1.25,0]) rotate([90,0,0])
    cylinder(r=bearing_outer/2+1,h=bearing_height*5,$fn=36,center=true);

  // carriage-side filament support bearing
  translate([0,filament_y+bearing_height*2+1,0]) rotate([90,0,0])
    cylinder(r=bearing_outer/2+0.1,h=bearing_height*3,center=true);
  % translate([0,filament_y+bearing_height+1.2,0]) rotate([90,0,0]) bearing();

  // idler crevice
  translate([idler_crevice_x,idler_crevice_y+1,body_bottom_pos+bottom_thickness+7])
    cube([idler_crevice_width,idler_crevice_length+2,idler_crevice_depth],center=true);

  // idler screw holes for idler screws
  translate([filament_x,filament_y,idler_screw_from_shaft]) {
    for (side=[-1,1]) {
      translate([0,idler_screw_spacing/2*side,0]) rotate([0,90,0]) cylinder(r=3.2*da6,h=45,$fn=6,center=true);
    }
  }

  // captive nut recesses for idler screws
  translate([-4,filament_y,idler_screw_from_shaft]) {
    for (side=[-1,1]) {
      translate([0,idler_screw_spacing/2*side,0]) rotate([0,90,0]) cylinder(r=5.7*da6,h=4,$fn=6,center=true);
      translate([0,idler_screw_spacing/2*side,5]) cube([4,5.7,10],center=true);
    }
  }

  // material saving

  // top center front by large gear
  translate([10,0,motor_side/2+4]) {
    rotate([20,25,0]) cube([40,50,22],center=true);
  }
  // bottom front
  translate([filament_x+4,-15,body_bottom_pos-7]) {
    rotate([60,0,0]) cylinder(r=20,h=100,center=true);
  }

  // center back
  /*
  */
  translate([0,total_depth+5.5,motor_side/2+2]) {
    rotate([15,0,0]) cube([50,20,50],center=true);
  }
  translate([-motor_side/2,total_depth+6,10]) {
    rotate([10,0,10]) cube([50,20,motor_side+10],center=true);
  }

  // space between motor and extruder shaft
  translate([-gear_dist/2-6,mount_plate_thickness+motor_height/2+10,motor_side/2-12]) {
    rotate([0,11,0]) cube([20,motor_height+20,motor_side+5],center=true);
  }

  // right front corner
  translate([28,0,-total_height/2]) {
    rotate([0,0,-36]) cube([20,60,30],center=true);
  }
  // bottom
  translate([20,-8,body_bottom_pos/2]) {
    rotate([16,0,45]) cube([70,20,40],center=true);
  }
  translate([20,-7,body_bottom_pos/2]) {
    rotate([-16,0,40]) cube([50,20,40],center=true);
  }

  // right rear corner
  translate([36.5,total_depth,body_bottom_pos]) {
    rotate([0,0,30]) cube([20,40,60],center=true);
  }
  translate([36,total_depth,body_bottom_pos]) {
    rotate([0,5,30]) cube([20,40,60],center=true);
  }
  translate([36,total_depth,body_bottom_pos+bottom_thickness+5]) {
    rotate([0,-10,30]) cube([20,40,60],center=true);
  }

  // bottom motor end
  translate([-gear_dist-motor_side/2,total_depth/2,body_bottom_pos-3.75]) {
    rotate([10,40,0]) cube([30,total_height*2,20],center=true);
  }
  translate([-gear_dist-motor_side/2+9,total_depth,body_bottom_pos]) {
    rotate([0,0,60]) cube([total_depth*2,20,20],center=true);
  }

  // top motor end
  translate([-gear_dist-motor_side/2,0,motor_side/2]) {
    rotate([0,45,0]) cube([5,10,10],center=true);
  }

  // motor
  translate([-gear_dist,mount_plate_thickness/2,0]) rotate([90,0,0]){
    // motor shoulder
    cylinder(r=motor_shoulder_diam/2+1,h=mount_plate_thickness*2,center=true);

    // motor mounting holes
    for (x=[-1,1]) {
      for (y=[-1,1]) {
        translate([motor_screw_spacing/2*x,motor_screw_spacing/2*y,0]) cylinder(r=3.2*da6,h=mount_plate_thickness*2,$fn=6,center=true);
      }
    }
  }

  // hotend
  translate([filament_x,filament_y,body_bottom_pos]) {
    // hotend mount hole
    translate([0,0,hotend_mount_height]) rotate([0,0,22.5]) cylinder(r=da8*hotend_diam+0.05,h=hotend_mount_hole_depth*2,$fn=8,center=true);

    // plate is not symmetric, skew to one side
    translate([-1.5,0,0]) {
      // hotend plate recess
      cube([hotend_mount_length,hotend_mount_width,hotend_mount_height*2],center=true);

      // hotend plate screw holes
      for (side=[-1,1]) {
        translate([side*hotend_mount_screw_hole_spacing,0,0]) {
          // screw holes
          cylinder(r=hotend_mount_screw_diam*da6+0.05,$fn=6,h=total_height,center=true);
          % cylinder(r=hotend_mount_screw_diam/2,$fn=72,h=10,center=true);

          // captive nut recesses for hotend mounting plate
          translate([0,0,bottom_thickness+49]) cylinder(r=7.3*da6,$fn=6,h=6.4+100,center=true);
        }
      }
    }
  }

  // filament guide top recess
  translate([filament_x,filament_y,motor_side/2]) rotate([0,0,22.5])
    cylinder(r=6.25/2,$fn=8,h=10,center=true);

  // carriage mounting holes
  translate([filament_x,total_depth/2,body_bottom_pos+bottom_thickness/2+1]) {
    for (side=[-1,1]) {
      translate([side*carriage_hole_spacing/2,-8,0]) rotate([90,0,0]) rotate([0,0,22.5])
        cylinder(r=6.2*da8,$fn=8,h=total_depth,center=true);

      translate([side*carriage_hole_spacing/2,total_depth/2,0]) rotate([90,0,0])
        cylinder(r=3.2*da6,$fn=6,h=total_depth,center=true);
    }
  }
}

bridge_thickness = 0.3;

module extruder_bridges(){
  // gear support bearing
  translate([-0.5*(bearing_outer-bearing_outer)-1,bearing_height+bridge_thickness/3,0])
    cube([bearing_outer,bridge_thickness,bearing_outer],center=true);

  // hobbed support bearing bridge
  translate([0,bridge_thickness/2+filament_y-bearing_height/2-1.25,0]) {
    difference() {
      translate([-0.5*(bearing_outer-bearing_outer)-1,0,0])
        cube([bearing_outer,bridge_thickness,bearing_outer],center=true);

      // force the bridging direction by having two bridges
      translate([0+ext_shaft_diam/2,0,0]) cube([0.1,bridge_thickness*2,bearing_outer],center=true);
    }
  }
}

rotate([90,0,0]) assembly();
//assembly();
